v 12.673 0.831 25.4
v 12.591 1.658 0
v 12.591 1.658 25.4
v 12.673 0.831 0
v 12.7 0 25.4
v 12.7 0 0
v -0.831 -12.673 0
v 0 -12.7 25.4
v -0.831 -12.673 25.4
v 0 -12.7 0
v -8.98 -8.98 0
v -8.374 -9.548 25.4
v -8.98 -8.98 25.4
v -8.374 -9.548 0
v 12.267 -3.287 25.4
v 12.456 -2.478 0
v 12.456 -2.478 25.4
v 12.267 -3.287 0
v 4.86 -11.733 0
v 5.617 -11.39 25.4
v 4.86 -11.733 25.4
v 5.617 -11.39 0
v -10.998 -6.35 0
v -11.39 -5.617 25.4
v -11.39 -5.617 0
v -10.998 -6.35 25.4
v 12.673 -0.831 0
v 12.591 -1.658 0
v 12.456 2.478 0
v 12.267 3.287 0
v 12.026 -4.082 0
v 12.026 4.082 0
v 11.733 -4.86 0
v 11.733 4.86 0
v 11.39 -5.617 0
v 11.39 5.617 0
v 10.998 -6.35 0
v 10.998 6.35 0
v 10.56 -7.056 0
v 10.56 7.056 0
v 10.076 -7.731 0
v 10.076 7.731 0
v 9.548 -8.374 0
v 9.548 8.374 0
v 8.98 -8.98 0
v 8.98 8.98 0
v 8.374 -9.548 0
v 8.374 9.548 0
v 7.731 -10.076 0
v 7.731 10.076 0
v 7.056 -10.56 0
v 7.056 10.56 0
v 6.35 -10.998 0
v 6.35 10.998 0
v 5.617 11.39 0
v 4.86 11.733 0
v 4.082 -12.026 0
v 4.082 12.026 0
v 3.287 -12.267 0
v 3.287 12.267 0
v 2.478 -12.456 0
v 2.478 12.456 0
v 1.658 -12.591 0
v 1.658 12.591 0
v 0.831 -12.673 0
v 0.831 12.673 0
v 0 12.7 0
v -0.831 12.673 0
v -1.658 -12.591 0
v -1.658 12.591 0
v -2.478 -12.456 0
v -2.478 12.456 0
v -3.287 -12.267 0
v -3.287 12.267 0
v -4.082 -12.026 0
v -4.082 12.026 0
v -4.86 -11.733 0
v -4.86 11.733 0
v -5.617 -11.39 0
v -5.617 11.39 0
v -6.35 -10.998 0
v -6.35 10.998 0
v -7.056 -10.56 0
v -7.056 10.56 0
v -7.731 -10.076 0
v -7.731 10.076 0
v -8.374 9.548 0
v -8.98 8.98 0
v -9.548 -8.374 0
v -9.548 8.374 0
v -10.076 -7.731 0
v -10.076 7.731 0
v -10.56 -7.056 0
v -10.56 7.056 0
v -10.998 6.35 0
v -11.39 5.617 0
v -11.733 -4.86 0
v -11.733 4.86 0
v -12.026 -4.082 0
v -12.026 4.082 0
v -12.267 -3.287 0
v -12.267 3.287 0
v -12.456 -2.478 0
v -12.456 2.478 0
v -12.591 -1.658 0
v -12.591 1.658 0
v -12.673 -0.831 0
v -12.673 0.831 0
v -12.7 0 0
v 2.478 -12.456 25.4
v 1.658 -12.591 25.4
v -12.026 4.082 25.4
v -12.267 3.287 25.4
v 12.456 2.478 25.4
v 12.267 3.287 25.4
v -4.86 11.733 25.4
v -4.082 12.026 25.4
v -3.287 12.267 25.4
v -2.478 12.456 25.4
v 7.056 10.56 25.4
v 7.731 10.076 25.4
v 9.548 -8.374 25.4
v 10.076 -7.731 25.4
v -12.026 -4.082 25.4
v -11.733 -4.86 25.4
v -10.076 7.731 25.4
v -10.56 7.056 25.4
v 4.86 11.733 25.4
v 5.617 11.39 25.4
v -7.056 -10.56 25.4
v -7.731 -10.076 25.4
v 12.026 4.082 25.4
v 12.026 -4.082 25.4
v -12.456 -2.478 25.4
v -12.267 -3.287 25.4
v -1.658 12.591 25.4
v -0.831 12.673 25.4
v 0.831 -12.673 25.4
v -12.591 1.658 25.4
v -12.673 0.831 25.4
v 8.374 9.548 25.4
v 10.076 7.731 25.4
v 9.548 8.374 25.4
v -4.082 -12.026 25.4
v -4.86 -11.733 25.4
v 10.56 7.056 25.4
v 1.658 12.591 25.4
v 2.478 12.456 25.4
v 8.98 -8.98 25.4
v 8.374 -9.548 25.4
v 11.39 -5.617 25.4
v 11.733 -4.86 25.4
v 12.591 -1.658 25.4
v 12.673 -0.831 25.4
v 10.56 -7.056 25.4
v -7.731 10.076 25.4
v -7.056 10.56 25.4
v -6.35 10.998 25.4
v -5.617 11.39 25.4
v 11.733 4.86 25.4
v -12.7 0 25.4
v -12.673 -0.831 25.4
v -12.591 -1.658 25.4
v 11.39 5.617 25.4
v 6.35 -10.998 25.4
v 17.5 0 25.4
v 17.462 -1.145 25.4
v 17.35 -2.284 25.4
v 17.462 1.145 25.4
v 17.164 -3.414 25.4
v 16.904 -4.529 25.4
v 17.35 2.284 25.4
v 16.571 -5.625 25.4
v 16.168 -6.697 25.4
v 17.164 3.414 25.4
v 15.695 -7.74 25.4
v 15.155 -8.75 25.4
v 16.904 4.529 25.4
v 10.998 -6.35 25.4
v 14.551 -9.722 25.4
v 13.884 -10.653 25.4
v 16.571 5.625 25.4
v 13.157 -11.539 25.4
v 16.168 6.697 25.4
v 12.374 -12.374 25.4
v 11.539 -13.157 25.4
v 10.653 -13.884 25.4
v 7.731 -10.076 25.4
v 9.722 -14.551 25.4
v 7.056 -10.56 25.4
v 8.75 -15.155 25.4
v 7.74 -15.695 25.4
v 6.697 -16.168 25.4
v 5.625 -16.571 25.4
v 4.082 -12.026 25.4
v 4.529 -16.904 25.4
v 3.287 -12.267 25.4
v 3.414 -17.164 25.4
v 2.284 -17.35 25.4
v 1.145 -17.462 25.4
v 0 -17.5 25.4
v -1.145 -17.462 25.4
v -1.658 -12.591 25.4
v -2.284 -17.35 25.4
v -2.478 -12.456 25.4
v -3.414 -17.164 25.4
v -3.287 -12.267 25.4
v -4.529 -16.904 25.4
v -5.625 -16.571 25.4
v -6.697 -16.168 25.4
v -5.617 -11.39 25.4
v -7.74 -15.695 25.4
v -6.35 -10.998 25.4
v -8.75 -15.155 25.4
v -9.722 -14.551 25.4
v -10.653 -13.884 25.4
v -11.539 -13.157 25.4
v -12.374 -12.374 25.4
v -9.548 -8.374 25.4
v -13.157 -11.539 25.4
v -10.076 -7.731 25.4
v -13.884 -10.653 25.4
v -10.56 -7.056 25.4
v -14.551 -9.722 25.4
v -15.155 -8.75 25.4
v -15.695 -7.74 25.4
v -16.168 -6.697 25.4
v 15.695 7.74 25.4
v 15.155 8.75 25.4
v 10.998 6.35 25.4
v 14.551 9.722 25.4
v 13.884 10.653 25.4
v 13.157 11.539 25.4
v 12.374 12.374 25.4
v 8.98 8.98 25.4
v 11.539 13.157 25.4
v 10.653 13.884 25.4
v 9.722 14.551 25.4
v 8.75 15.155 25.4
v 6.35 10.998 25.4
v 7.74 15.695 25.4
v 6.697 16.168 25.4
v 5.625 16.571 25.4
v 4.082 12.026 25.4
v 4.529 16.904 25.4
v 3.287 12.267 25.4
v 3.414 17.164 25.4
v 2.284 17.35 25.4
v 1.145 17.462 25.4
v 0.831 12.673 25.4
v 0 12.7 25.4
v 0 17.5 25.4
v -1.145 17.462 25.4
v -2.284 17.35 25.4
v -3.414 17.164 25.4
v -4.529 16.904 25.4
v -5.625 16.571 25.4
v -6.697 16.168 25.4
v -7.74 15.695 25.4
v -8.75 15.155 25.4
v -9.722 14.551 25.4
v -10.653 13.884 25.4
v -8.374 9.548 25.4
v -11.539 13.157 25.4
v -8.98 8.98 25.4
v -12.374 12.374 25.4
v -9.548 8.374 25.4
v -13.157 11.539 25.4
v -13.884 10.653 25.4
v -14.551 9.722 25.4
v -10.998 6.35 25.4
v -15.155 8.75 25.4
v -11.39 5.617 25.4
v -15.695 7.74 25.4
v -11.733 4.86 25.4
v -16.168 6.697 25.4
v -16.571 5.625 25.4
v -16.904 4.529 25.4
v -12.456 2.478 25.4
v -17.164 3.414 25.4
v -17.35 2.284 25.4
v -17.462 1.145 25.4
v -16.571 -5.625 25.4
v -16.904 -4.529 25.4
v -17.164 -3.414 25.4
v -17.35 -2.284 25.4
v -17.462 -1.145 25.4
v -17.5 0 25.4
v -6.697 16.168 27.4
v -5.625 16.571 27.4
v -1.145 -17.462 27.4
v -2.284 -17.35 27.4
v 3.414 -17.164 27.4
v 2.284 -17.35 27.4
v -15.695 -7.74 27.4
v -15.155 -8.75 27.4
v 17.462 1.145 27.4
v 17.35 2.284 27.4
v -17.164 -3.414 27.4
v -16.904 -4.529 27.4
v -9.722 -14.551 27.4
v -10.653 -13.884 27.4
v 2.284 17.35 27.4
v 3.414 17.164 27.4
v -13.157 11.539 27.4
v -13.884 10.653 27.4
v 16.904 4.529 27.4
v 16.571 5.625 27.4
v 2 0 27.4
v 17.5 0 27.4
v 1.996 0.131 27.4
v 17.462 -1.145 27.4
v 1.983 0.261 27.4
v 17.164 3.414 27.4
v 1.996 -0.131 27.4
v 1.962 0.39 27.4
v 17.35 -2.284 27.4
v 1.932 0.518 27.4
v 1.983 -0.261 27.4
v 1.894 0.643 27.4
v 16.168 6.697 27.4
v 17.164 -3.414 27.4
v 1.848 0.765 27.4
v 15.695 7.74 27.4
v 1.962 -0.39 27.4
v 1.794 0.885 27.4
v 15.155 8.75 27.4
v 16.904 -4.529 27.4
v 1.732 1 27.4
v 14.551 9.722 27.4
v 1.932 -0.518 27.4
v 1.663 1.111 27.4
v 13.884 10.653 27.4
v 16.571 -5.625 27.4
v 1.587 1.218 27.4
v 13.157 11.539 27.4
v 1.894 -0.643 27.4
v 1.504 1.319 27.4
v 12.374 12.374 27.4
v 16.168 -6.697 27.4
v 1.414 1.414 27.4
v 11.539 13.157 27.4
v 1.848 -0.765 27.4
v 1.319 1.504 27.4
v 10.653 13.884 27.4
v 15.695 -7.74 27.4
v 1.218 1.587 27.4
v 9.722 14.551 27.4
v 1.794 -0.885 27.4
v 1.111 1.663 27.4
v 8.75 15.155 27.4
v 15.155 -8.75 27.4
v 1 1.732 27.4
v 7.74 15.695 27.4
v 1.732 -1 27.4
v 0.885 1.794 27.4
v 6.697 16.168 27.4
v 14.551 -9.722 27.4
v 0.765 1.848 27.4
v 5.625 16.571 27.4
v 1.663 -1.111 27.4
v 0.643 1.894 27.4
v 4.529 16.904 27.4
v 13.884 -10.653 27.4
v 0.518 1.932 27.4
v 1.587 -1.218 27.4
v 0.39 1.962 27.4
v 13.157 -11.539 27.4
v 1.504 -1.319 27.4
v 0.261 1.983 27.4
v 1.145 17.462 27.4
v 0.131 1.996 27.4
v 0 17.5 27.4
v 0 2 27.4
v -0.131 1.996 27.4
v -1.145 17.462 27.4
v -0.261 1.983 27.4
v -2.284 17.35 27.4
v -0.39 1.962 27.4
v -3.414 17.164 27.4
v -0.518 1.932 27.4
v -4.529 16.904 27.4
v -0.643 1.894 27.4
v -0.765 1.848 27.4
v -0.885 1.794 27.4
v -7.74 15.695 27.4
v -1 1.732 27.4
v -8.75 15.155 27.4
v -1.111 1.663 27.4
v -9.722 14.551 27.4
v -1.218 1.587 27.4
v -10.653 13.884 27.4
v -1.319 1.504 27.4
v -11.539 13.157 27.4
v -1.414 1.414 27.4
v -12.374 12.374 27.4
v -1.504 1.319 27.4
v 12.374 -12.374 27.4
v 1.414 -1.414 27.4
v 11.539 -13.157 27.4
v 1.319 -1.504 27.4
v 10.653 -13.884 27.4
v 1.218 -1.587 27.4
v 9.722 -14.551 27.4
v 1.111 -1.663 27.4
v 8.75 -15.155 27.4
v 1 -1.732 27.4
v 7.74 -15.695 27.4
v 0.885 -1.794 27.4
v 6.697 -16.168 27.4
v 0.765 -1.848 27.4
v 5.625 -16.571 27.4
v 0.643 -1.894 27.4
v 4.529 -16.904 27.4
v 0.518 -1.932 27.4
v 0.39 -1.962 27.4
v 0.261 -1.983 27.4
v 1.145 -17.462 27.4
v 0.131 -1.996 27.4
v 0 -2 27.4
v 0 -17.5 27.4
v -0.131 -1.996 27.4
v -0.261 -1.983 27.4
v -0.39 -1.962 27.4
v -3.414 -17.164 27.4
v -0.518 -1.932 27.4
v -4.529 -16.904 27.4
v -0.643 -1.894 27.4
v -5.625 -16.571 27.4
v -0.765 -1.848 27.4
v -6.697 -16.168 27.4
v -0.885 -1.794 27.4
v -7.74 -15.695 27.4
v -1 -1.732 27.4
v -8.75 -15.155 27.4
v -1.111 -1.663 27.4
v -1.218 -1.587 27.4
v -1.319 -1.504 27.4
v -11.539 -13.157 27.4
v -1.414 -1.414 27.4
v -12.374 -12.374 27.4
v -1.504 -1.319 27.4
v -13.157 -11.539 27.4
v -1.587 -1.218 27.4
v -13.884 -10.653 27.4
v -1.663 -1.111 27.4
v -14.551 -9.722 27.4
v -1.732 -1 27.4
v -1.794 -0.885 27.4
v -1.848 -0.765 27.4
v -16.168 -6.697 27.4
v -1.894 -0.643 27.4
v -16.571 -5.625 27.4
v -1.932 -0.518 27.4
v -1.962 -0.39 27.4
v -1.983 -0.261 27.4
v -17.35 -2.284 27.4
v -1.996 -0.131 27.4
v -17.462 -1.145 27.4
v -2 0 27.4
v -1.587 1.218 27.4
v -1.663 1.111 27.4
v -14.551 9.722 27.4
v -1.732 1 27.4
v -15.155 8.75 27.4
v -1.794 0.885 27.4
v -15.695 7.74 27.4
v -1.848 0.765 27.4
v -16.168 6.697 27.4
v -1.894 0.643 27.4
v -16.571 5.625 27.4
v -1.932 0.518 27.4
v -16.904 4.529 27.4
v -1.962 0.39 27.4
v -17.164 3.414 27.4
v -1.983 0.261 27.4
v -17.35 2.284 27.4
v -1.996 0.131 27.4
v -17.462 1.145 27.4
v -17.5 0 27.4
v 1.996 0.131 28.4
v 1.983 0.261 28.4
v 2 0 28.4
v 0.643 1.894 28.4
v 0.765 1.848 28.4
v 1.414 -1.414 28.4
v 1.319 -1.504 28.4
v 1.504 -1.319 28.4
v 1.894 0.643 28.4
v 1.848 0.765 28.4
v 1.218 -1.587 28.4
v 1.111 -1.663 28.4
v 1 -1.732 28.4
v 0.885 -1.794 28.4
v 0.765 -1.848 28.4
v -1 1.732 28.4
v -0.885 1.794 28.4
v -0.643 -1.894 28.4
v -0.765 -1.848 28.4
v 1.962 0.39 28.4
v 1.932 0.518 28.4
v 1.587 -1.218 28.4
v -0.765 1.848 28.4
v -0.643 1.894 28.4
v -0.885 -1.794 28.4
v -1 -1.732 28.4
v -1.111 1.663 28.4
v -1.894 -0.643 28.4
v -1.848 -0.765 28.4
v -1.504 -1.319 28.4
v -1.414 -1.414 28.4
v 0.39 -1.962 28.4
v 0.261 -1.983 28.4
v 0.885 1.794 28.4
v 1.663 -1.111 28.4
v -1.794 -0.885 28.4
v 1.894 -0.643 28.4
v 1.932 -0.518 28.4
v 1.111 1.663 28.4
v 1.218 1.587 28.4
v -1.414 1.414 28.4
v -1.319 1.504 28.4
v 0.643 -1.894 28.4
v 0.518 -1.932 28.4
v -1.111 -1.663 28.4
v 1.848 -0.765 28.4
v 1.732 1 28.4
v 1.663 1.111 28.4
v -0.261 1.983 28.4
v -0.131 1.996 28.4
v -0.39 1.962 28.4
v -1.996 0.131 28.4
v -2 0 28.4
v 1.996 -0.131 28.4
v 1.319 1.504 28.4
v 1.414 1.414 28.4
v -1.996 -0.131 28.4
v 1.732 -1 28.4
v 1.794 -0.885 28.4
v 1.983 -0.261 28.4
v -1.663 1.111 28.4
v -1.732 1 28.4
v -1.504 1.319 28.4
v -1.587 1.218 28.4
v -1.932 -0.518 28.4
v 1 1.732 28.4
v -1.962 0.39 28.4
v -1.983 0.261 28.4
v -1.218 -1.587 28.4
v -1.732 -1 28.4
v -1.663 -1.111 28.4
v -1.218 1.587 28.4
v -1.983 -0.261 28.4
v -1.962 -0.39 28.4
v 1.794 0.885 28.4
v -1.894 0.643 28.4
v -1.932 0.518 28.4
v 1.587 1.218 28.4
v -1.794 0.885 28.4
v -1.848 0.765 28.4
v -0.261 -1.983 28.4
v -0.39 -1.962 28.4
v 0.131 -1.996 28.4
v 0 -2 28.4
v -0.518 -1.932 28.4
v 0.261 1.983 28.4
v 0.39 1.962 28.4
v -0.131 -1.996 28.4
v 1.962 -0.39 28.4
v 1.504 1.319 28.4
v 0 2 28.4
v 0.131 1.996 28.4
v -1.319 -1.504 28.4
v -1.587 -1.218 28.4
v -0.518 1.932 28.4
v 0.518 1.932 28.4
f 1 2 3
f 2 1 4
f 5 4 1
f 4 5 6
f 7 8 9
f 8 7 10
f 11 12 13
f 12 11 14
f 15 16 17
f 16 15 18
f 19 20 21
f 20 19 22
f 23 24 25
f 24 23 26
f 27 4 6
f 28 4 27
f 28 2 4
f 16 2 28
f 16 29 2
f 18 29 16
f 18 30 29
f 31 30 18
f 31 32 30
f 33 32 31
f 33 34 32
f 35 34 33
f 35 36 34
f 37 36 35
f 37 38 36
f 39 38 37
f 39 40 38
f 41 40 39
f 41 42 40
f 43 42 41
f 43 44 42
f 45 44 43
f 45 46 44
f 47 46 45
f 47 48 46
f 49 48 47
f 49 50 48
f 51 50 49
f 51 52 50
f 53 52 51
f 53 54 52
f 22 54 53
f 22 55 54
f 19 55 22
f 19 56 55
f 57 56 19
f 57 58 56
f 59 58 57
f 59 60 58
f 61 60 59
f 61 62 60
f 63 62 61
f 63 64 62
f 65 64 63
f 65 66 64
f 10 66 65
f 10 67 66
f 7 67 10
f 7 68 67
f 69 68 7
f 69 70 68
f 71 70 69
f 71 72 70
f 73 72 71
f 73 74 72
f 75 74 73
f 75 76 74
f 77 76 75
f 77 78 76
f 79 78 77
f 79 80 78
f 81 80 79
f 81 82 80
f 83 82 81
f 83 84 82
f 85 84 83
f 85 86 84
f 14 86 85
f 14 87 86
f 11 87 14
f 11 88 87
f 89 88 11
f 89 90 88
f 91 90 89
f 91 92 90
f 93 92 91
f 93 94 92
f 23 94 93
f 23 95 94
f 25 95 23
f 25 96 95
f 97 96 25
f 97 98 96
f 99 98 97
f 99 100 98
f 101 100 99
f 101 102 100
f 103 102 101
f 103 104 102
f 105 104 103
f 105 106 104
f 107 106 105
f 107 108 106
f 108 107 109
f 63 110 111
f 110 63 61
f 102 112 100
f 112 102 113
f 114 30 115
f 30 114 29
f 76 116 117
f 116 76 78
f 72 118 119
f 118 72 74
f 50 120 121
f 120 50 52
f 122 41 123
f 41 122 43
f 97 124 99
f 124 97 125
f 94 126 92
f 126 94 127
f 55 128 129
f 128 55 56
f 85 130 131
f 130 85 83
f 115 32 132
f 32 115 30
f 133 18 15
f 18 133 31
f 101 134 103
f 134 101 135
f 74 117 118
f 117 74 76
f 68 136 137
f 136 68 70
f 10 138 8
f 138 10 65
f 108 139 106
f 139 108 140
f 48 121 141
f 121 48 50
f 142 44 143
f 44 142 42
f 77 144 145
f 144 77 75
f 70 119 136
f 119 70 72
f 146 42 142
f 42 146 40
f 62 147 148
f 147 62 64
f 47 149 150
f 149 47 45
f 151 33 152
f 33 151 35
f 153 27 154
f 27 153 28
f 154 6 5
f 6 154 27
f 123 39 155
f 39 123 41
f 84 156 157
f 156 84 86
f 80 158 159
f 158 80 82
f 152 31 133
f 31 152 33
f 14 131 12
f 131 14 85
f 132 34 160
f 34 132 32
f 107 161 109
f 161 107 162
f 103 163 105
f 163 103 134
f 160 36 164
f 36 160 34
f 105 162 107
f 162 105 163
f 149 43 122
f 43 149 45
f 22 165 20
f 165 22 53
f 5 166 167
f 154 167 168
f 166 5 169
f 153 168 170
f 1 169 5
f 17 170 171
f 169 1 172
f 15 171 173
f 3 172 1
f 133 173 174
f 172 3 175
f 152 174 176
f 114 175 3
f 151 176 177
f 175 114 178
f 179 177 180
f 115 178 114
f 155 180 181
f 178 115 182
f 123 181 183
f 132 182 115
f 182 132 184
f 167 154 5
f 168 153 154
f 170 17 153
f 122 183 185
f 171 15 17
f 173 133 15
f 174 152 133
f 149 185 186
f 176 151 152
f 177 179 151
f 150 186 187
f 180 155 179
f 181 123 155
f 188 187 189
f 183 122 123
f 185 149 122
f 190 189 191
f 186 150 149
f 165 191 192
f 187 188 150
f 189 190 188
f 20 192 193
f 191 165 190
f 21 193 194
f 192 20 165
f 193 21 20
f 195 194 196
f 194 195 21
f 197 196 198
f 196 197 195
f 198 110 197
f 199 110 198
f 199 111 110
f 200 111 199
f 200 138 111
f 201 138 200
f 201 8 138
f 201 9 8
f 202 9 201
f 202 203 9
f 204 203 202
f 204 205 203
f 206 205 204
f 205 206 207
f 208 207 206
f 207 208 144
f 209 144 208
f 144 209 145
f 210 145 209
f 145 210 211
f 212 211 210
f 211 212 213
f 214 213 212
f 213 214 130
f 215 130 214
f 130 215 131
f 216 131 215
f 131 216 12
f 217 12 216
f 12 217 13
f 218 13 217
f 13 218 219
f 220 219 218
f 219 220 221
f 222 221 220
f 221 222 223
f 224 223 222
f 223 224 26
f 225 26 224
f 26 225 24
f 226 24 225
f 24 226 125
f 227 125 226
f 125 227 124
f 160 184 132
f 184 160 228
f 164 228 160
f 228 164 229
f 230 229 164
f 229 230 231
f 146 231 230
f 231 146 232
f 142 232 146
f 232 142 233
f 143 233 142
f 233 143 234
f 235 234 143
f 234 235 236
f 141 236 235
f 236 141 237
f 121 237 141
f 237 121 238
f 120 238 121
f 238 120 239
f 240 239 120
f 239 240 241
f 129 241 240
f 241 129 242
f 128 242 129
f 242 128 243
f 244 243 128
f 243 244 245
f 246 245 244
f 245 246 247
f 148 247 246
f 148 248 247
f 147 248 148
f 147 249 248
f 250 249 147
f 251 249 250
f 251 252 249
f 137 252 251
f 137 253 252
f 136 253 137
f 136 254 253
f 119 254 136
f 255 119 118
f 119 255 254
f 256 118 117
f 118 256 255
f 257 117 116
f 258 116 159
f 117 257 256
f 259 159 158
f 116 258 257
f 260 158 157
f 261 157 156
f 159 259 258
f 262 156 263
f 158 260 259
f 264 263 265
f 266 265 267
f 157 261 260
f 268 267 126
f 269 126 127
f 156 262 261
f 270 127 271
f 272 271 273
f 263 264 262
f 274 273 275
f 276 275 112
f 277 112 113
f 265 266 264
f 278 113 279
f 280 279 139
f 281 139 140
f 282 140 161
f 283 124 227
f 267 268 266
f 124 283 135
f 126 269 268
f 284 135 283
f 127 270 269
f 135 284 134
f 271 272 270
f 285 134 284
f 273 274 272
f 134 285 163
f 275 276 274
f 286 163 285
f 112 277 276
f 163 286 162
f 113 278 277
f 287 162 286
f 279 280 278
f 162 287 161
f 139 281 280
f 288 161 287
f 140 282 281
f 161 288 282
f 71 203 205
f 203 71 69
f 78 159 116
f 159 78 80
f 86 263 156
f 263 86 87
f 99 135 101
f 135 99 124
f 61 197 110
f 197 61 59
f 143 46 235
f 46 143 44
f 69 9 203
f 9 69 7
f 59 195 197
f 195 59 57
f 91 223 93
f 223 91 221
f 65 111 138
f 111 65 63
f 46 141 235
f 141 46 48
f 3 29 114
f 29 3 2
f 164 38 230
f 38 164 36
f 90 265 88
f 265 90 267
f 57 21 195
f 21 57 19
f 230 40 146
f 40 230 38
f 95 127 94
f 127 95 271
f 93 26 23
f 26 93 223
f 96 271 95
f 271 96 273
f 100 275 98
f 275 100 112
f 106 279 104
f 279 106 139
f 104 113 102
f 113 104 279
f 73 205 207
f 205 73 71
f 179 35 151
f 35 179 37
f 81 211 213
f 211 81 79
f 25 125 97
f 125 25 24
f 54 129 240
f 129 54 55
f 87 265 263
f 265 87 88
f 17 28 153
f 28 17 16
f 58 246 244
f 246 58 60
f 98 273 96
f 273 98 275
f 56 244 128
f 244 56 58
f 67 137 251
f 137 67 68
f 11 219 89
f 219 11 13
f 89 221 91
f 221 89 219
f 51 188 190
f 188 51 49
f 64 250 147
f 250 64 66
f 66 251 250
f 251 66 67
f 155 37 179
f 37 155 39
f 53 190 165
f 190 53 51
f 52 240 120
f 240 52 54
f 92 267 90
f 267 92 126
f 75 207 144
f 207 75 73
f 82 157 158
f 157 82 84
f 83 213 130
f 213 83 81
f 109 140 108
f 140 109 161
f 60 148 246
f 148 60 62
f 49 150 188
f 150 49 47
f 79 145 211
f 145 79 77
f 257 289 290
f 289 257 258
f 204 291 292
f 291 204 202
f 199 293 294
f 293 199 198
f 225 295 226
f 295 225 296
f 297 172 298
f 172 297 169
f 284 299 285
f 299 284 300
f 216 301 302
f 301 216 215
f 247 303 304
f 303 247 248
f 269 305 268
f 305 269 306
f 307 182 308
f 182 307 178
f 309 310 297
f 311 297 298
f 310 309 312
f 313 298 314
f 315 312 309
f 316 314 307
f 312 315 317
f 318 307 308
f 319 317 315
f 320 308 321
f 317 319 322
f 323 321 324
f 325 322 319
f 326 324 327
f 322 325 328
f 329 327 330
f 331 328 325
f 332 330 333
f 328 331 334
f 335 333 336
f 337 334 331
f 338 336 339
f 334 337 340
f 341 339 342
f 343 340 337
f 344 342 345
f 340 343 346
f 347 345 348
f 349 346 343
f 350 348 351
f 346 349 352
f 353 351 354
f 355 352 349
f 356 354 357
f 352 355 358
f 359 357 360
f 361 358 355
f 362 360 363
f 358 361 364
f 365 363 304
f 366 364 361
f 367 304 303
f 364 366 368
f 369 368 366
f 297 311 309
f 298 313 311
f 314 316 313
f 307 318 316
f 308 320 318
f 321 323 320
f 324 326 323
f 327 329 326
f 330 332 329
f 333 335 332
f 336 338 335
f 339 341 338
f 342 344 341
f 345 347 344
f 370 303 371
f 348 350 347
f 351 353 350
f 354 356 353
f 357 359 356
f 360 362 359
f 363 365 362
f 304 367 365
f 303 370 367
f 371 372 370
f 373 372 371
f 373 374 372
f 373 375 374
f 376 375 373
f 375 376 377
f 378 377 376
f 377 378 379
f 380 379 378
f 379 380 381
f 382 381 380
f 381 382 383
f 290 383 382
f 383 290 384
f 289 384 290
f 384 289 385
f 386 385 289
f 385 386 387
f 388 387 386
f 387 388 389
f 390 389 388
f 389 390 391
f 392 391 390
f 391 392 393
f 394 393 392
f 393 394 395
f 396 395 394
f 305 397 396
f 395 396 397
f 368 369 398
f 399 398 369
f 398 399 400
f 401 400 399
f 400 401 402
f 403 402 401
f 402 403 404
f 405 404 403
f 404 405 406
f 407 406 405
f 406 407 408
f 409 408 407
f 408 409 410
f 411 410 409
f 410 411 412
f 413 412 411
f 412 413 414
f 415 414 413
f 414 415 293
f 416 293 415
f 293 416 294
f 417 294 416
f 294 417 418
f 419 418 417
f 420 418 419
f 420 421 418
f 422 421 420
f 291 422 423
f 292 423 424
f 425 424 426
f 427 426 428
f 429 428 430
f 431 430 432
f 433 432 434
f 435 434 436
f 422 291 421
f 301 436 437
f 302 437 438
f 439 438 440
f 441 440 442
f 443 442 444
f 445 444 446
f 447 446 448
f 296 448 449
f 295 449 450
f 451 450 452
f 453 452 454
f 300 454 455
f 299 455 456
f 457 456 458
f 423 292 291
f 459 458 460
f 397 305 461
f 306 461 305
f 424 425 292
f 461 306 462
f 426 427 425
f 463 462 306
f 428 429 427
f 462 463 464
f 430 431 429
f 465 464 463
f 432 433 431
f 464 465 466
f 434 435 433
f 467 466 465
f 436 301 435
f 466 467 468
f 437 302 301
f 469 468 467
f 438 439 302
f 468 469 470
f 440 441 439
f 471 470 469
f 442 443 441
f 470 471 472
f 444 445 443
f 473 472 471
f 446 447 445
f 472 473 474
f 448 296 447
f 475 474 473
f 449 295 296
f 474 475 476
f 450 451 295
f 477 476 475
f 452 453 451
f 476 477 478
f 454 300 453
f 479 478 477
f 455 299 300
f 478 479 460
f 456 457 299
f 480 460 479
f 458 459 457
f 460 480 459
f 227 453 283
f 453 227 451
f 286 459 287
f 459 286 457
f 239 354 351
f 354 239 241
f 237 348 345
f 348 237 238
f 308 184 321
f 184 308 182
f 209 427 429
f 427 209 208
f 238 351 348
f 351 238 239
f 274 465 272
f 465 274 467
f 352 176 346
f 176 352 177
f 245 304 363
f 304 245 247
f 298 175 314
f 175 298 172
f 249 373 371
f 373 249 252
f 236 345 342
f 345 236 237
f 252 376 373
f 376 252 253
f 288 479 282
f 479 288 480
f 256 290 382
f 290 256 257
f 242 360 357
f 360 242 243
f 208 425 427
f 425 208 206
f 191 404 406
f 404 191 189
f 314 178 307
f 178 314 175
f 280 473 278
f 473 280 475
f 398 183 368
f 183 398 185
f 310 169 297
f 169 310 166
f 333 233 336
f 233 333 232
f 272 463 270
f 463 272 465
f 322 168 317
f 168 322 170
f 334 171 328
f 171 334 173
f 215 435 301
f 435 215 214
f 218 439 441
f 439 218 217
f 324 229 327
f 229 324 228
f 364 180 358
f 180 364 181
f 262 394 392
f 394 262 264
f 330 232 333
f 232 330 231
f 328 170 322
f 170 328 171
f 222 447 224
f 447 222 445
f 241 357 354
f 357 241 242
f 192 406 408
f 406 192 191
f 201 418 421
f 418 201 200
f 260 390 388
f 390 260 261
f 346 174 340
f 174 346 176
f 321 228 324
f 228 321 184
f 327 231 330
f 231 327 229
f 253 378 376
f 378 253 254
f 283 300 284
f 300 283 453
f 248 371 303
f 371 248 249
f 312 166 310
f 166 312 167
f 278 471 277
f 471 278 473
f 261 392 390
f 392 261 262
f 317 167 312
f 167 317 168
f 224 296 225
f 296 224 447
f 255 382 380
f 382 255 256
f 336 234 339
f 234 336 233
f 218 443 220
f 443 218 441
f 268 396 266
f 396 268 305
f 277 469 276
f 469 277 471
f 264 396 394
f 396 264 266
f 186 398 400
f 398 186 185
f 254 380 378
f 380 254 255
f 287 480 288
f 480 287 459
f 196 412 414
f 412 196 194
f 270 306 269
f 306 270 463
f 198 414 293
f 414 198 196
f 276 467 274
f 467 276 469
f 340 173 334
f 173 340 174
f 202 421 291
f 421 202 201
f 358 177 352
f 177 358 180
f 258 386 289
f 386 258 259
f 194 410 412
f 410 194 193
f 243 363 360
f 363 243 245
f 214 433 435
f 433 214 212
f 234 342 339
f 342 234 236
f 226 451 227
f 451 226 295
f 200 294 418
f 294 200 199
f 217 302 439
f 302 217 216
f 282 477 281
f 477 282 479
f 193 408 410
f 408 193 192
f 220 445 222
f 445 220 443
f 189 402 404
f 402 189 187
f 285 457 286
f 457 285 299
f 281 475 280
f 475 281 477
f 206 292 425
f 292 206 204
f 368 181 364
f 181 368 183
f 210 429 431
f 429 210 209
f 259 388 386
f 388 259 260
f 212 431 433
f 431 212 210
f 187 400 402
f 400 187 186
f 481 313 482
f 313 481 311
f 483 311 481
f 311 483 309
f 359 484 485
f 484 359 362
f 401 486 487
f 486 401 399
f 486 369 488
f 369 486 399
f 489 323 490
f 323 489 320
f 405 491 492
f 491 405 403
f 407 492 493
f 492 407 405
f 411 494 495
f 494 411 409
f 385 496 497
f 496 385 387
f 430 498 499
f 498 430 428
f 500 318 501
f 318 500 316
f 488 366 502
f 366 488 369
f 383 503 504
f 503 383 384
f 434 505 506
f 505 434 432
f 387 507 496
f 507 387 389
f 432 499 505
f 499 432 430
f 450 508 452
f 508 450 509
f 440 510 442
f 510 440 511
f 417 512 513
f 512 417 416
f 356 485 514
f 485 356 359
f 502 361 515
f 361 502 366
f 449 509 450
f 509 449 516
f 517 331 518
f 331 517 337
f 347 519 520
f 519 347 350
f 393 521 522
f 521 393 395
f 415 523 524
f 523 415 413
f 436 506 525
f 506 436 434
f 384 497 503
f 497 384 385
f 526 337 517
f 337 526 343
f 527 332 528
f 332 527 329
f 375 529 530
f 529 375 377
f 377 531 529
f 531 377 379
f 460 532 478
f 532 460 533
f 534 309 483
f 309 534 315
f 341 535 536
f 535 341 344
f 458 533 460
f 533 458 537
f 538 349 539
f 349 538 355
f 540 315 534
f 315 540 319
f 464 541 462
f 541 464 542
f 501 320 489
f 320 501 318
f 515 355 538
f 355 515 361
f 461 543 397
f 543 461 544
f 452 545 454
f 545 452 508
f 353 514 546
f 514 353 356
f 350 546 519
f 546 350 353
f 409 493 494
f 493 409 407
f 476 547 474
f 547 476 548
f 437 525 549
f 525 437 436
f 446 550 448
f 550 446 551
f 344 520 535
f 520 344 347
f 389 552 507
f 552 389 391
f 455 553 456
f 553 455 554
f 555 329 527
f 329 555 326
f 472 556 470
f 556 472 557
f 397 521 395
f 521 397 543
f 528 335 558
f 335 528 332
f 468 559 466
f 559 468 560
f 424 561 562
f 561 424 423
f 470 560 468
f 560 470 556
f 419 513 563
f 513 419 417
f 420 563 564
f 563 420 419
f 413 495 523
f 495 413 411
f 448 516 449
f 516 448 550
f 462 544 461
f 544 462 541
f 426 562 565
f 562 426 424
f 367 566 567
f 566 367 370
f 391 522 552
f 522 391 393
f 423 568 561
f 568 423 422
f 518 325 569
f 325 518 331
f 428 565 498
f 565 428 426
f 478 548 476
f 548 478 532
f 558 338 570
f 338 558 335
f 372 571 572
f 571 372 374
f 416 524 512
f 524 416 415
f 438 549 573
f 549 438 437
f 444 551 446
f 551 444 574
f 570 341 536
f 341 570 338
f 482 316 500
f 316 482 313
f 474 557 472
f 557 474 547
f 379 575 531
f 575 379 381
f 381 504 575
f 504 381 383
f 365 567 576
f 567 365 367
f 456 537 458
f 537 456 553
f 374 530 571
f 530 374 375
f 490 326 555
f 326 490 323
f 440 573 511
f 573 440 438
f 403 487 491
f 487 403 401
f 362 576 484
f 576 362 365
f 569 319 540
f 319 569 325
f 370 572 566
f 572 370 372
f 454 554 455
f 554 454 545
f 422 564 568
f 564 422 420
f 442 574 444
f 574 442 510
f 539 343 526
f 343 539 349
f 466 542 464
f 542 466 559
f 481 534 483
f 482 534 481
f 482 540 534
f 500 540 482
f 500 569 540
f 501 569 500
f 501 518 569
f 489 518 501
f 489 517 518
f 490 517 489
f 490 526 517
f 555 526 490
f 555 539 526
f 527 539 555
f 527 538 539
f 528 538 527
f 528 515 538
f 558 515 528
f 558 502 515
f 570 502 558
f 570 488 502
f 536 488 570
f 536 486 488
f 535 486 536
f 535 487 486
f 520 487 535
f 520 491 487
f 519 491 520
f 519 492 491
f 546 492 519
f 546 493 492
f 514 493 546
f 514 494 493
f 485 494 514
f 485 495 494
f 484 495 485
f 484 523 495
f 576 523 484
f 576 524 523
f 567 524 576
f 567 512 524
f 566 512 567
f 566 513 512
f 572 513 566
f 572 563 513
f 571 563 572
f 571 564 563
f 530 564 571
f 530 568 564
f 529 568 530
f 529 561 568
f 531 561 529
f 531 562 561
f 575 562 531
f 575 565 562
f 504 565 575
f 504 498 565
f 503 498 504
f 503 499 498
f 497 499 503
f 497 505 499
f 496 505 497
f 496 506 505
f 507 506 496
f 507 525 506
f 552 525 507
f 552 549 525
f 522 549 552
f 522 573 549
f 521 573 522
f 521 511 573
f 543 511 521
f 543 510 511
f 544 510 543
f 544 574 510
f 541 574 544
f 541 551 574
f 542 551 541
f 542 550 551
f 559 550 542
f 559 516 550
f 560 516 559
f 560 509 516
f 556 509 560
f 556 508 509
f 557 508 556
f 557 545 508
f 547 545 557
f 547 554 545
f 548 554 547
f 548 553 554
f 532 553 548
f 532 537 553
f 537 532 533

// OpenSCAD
// HERE — Dowel Centerer
// 3D-printable tool for transferring 1″ dowel hole locations from the
// legs to the bench slab.
//
// Usage:
//   1. Drill a 1″ (25.4 mm) hole in each leg for the dowel.
//   2. Drop a centerer into each hole, BODY first. The cap rests flush
//      on the leg's top face; the pin points up.
//   3. Position the slab on top of the legs and press down firmly.
//      Each pin stamps a small dimple at the exact dowel location on
//      the slab's underside.
//   4. Drill a matching 1″ hole at each dimple.
//   5. Glue 1″ dowels into matching holes; clamp leg + slab together.
//
// Print orientation: body on the build plate, cap + pin pointing up.
// The cap's underside has a small 5 mm horizontal overhang (the lip
// around the body), which the Bambu Lab Mini bridges cleanly at this
// scale — no supports needed. Slight bridge roughness on that face is
// fine; in use it presses against the leg's top.
//
// Slicer settings (Bambu Lab Mini):
//   - PLA or PETG
//   - 0.2 mm layer height
//   - 30–50% infill (irrelevant for a part this small)
//   - No supports
//
// Tip: a 1″ FDM print typically comes out 0.1–0.3 mm oversized on
// outer dimensions. If the body won't drop into the leg's hole, sand
// it lightly or set `body_tol = 0.3` and reprint.

// ─── parameters ─────────────────────────────────────────────
inch = 25.4;

body_d   = inch;   // 1″ — matches the dowel hole
body_tol = 0.0;    // increase to undersize the body (shrinks both sides)
body_h   = inch;   // 1″ deep into the leg
cap_d    = 35;     // ≈ 1″ + 1 cm
cap_h    = 2;
pin_d    = 4;
pin_h    = 1;

$fn = 96;

// ─── geometry ───────────────────────────────────────────────
// Stack from bottom (deepest in the leg's hole) to top (marks slab):
//   body  →  cap  →  pin
// The cap and pin are on the same side, opposite the body.
union() {
    // body — fits the leg's dowel hole
    cylinder(d=body_d - body_tol, h=body_h);

    // cap — sits on the leg's top face
    translate([0, 0, body_h])
        cylinder(d=cap_d, h=cap_h);

    // pin — marks the slab (on the cap, opposite the body)
    translate([0, 0, body_h + cap_h])
        cylinder(d=pin_d, h=pin_h);
}
